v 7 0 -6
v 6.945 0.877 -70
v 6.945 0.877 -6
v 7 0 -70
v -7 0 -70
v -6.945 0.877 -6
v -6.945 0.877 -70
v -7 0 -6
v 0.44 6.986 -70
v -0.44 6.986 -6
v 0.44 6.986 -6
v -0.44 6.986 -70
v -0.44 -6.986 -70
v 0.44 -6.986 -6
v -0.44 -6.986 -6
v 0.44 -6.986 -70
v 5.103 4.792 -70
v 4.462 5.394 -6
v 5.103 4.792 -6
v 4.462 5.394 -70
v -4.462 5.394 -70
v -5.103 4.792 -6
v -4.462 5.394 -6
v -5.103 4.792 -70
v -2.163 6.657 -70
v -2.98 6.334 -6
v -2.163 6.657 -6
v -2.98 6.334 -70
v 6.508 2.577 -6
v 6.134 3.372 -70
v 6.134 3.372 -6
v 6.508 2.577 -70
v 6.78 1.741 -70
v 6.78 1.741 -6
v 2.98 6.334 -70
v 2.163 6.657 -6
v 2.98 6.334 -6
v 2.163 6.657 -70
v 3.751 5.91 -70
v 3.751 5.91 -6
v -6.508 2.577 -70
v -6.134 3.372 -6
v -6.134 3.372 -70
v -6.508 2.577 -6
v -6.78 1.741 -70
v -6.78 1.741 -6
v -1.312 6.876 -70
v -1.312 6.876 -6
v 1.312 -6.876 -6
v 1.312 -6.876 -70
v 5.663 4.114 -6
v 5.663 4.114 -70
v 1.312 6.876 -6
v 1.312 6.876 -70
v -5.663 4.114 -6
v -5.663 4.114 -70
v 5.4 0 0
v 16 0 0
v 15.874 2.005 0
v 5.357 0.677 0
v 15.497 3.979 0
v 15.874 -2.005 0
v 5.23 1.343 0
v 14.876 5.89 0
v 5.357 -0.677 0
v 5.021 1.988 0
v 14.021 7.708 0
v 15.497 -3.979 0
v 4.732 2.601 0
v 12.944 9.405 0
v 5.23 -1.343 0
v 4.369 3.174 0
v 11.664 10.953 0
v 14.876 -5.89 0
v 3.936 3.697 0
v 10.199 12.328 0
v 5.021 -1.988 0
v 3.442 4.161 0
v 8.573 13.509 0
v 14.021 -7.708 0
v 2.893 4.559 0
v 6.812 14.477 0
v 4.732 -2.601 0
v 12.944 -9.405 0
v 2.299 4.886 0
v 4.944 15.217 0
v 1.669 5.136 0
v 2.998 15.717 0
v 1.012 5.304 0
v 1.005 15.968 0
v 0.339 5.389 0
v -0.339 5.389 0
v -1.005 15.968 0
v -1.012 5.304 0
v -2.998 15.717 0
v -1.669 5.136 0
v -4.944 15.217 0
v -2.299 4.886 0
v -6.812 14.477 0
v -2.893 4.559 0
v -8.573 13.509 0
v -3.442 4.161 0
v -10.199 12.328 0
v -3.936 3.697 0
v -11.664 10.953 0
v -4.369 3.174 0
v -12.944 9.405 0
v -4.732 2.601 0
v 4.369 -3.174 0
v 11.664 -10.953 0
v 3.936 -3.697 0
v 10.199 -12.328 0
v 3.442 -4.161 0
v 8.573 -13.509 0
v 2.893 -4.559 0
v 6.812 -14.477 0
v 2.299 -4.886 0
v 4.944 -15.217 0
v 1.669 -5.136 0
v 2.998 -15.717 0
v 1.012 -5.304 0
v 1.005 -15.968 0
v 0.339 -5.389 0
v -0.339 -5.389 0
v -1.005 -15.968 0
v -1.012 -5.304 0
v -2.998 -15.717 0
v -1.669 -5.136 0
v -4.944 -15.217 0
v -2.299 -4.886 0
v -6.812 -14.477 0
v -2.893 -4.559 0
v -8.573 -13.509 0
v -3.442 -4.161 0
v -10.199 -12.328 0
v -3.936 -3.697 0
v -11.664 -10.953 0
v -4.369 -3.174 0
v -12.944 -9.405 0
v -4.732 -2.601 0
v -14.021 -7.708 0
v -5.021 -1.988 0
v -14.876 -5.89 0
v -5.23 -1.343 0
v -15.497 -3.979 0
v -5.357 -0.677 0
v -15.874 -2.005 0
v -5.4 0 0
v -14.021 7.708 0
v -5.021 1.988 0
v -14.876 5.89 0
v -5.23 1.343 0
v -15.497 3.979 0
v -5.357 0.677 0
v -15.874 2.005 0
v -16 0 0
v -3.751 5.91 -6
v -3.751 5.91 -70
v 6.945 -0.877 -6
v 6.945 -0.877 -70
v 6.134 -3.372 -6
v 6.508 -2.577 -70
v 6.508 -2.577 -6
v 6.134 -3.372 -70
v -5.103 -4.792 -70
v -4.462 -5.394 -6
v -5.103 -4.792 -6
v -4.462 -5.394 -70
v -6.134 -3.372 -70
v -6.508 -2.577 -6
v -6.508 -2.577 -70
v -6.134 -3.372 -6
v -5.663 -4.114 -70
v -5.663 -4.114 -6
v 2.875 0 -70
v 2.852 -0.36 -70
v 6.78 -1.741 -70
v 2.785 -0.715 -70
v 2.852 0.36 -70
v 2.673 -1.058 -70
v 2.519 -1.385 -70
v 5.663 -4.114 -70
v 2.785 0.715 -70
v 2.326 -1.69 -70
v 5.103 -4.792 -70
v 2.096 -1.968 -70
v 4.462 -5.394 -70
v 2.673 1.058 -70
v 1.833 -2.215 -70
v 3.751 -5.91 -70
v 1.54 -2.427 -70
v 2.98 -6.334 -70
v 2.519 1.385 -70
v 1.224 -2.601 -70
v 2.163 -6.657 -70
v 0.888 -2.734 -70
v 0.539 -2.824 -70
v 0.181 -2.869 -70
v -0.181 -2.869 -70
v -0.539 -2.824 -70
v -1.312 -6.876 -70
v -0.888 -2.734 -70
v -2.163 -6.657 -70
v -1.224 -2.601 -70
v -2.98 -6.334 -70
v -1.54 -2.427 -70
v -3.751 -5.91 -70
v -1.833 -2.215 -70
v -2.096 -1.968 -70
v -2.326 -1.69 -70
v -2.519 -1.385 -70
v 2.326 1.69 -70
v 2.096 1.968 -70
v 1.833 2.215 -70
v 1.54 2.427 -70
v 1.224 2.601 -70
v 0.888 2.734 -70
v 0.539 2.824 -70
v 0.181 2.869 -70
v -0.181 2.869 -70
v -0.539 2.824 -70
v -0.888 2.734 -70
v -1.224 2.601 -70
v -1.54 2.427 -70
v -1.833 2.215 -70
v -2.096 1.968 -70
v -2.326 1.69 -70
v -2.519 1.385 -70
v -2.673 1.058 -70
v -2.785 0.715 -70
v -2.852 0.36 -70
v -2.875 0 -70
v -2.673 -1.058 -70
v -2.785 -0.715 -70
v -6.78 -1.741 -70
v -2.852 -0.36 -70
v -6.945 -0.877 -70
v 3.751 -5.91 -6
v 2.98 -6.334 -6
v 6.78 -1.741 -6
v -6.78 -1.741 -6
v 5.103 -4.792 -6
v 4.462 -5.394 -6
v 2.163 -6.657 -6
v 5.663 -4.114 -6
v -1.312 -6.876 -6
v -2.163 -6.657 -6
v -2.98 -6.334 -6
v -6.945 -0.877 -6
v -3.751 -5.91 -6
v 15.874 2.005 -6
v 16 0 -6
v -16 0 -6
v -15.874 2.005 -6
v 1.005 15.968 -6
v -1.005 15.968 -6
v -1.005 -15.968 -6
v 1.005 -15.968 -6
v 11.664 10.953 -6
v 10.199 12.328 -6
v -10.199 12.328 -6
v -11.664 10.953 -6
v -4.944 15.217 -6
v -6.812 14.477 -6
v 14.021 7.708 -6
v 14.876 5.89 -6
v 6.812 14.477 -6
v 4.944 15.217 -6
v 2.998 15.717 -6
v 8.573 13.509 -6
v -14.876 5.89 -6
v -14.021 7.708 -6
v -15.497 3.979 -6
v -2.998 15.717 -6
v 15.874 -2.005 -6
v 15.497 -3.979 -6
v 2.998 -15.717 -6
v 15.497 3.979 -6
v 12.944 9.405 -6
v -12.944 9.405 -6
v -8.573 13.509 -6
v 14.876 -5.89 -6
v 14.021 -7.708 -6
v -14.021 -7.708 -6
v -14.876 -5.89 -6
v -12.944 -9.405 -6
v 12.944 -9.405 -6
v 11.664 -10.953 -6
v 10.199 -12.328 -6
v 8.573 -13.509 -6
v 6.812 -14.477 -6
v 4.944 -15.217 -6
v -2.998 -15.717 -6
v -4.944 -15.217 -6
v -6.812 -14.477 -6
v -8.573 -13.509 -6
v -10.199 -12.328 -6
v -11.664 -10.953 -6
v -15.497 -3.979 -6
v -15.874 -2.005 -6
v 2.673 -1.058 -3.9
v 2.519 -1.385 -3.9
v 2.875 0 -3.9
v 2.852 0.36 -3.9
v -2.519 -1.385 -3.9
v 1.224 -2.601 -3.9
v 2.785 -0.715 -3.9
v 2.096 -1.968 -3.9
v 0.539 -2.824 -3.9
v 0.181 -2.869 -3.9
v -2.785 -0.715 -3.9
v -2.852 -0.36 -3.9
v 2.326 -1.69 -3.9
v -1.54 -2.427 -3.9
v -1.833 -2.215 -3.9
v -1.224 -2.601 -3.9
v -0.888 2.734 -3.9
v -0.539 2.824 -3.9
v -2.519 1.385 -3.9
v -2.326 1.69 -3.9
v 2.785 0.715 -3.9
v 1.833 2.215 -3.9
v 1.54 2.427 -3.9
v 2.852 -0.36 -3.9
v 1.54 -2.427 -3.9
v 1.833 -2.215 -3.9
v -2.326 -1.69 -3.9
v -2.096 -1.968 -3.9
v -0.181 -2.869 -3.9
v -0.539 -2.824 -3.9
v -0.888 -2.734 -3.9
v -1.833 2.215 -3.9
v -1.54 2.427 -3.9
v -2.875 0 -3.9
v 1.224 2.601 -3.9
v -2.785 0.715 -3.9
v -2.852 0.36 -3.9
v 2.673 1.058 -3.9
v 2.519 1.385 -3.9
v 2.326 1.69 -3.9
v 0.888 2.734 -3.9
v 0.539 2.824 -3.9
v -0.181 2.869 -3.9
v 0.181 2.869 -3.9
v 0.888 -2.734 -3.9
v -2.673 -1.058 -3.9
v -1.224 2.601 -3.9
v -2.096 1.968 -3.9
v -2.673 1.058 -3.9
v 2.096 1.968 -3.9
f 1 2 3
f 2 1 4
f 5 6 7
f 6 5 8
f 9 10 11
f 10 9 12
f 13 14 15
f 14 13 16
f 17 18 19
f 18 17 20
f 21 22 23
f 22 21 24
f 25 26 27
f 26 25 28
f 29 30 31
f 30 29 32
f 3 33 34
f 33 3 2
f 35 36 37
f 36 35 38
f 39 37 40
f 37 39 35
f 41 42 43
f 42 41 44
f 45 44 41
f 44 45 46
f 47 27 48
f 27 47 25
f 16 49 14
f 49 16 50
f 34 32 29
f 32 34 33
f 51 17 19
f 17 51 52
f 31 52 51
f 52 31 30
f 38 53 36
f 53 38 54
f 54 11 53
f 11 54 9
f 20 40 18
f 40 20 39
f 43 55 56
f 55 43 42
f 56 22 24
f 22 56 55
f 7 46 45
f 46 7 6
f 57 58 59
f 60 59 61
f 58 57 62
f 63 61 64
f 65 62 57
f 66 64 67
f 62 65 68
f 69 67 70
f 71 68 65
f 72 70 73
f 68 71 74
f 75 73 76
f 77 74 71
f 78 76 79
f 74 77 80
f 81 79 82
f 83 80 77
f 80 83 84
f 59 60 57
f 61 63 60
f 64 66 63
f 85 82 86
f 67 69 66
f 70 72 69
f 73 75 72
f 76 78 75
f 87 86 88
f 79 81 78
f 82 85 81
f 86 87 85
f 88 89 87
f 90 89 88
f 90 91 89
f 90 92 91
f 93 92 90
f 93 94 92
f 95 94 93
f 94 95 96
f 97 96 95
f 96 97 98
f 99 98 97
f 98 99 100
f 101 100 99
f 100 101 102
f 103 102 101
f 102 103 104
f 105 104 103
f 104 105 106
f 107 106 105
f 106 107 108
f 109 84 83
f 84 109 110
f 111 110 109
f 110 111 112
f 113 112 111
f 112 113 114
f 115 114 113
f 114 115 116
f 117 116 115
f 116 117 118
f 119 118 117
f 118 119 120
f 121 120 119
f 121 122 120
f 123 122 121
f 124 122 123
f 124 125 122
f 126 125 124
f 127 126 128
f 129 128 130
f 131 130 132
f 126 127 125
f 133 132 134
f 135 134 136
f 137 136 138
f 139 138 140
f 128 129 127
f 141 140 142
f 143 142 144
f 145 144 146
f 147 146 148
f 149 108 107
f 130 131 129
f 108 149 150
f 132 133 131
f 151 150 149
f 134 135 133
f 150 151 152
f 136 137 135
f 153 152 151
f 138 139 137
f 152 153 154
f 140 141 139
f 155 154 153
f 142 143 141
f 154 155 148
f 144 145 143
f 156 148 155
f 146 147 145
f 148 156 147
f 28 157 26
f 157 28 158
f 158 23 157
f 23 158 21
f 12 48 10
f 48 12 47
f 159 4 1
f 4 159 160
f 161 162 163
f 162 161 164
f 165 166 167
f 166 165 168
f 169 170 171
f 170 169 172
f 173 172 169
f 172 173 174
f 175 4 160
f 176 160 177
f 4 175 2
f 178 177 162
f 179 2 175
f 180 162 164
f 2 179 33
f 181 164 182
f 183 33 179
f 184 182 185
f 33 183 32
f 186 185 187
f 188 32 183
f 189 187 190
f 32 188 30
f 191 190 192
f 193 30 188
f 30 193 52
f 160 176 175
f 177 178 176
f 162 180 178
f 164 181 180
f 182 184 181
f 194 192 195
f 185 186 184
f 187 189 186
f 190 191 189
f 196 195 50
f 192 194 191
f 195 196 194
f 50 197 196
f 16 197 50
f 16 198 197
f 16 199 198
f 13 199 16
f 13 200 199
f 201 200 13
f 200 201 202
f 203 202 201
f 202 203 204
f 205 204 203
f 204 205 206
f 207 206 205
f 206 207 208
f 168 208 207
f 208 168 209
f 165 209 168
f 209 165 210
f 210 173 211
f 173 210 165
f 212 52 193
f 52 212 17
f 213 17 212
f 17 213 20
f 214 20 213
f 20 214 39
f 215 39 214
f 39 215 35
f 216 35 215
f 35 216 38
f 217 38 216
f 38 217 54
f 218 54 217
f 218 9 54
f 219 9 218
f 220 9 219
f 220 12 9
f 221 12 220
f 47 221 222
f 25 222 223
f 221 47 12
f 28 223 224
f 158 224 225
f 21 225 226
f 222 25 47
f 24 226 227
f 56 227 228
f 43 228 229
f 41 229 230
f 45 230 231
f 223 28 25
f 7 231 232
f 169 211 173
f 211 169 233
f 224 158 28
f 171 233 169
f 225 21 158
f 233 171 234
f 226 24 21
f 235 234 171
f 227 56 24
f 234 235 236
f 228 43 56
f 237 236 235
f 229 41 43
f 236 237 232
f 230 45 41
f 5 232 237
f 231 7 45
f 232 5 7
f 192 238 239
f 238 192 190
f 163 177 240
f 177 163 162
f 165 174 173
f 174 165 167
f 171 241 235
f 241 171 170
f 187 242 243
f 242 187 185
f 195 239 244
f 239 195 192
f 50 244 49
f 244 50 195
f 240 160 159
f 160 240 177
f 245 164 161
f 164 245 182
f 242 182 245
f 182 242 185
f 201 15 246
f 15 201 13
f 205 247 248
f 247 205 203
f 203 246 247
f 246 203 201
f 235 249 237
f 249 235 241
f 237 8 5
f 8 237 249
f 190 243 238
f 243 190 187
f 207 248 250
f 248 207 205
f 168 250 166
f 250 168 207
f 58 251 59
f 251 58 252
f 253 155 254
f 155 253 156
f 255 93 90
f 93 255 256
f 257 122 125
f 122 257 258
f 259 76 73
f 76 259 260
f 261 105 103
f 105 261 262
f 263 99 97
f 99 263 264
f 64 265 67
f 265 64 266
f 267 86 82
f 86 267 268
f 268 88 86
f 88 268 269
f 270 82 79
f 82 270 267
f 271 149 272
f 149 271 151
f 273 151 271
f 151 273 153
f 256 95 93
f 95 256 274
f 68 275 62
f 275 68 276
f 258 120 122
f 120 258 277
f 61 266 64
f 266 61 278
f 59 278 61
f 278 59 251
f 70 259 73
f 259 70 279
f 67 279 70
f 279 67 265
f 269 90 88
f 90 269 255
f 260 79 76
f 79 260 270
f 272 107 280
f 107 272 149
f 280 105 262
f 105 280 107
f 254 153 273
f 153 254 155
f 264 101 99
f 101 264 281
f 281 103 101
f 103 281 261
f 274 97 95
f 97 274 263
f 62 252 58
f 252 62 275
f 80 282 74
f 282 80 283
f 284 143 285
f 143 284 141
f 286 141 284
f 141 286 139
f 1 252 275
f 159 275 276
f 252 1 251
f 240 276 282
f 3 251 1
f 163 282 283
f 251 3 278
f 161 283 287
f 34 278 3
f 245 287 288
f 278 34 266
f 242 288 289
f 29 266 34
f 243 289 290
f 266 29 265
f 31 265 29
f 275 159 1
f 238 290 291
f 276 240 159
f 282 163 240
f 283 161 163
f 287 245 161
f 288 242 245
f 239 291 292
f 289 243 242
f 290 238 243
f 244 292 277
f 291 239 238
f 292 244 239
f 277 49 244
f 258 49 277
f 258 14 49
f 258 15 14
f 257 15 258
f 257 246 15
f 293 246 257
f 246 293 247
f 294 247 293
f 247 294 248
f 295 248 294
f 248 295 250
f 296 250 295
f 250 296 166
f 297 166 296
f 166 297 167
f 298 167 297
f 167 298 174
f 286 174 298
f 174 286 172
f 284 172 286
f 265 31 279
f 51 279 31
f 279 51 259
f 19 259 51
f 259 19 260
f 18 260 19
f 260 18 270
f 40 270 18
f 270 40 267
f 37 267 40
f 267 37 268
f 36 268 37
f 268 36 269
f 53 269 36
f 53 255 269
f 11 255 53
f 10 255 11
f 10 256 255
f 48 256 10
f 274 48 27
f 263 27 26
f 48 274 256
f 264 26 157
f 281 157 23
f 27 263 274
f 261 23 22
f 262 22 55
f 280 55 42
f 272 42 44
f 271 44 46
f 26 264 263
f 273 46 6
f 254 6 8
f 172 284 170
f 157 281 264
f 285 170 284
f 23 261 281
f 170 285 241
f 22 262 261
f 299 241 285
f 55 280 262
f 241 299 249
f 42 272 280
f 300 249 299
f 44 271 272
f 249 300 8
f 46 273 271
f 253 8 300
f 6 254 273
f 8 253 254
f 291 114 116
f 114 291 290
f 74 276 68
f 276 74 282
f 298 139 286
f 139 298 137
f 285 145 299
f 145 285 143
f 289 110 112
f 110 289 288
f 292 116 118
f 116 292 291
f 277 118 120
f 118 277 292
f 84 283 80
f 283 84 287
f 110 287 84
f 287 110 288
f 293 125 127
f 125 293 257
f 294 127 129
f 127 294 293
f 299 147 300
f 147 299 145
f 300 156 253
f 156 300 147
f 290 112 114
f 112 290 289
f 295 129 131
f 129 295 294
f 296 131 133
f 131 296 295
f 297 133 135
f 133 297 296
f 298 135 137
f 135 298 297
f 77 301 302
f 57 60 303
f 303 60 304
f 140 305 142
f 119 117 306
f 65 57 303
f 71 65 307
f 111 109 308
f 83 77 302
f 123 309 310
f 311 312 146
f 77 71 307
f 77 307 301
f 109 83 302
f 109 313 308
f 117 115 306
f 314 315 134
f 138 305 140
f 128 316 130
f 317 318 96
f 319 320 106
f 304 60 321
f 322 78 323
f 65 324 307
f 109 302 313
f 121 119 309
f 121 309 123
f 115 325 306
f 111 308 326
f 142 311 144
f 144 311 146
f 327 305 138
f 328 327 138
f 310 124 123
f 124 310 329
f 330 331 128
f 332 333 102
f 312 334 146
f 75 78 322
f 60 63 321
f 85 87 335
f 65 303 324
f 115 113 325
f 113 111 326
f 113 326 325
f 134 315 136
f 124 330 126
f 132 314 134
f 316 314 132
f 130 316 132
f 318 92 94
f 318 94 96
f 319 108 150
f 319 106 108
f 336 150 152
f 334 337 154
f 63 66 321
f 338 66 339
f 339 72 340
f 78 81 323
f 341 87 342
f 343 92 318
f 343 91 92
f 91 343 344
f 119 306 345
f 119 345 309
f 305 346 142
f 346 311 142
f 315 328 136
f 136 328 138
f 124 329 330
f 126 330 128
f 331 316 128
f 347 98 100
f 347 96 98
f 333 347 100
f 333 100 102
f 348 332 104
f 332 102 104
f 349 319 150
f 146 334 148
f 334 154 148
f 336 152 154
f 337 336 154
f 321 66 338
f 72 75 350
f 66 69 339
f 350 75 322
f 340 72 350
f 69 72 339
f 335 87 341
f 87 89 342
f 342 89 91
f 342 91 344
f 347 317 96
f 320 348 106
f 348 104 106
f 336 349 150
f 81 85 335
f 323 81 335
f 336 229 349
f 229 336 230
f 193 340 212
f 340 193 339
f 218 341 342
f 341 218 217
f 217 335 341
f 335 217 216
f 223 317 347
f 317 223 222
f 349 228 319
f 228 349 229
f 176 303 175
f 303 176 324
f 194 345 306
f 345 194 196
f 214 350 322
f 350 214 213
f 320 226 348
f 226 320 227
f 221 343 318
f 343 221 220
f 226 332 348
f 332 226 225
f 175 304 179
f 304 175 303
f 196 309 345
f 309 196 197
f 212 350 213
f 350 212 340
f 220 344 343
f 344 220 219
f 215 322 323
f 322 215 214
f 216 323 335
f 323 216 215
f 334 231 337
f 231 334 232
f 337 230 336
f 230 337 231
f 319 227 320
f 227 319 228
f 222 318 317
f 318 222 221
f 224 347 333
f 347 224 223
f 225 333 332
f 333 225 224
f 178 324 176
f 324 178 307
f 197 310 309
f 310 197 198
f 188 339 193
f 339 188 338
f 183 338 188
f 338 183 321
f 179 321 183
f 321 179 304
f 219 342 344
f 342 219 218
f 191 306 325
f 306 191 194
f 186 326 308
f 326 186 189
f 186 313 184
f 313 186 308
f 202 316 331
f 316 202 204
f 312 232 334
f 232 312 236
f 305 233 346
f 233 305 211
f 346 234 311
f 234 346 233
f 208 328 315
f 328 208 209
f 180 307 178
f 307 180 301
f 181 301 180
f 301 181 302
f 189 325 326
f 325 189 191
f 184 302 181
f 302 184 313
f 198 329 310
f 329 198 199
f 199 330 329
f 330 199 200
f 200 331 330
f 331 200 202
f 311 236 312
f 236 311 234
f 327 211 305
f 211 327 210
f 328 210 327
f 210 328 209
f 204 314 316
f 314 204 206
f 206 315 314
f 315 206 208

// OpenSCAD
$fn = 50;


difference() {
	union() {
		translate(v = [0, 0, -70.0000000000]) {
			cylinder(h = 70, r = 7.0000000000);
		}
		translate(v = [0, 0, -6.0000000000]) {
			cylinder(h = 6, r = 16.0000000000);
		}
	}
	union() {
		translate(v = [0, 0, 0]) {
			rotate(a = [0, 0, 0]) {
				difference() {
					union() {
						#translate(v = [0, 0, -70.0000000000]) {
							cylinder(h = 70, r = 2.6000000000);
						}
						#translate(v = [0, 0, -3.9000000000]) {
							cylinder(h = 3.9000000000, r1 = 2.8750000000, r2 = 5.4000000000);
						}
						#translate(v = [0, 0, -70.0000000000]) {
							cylinder(h = 70, r = 2.8750000000);
						}
						#translate(v = [0, 0, -70.0000000000]) {
							cylinder(h = 70, r = 2.6000000000);
						}
					}
					union();
				}
			}
		}
	}
}
